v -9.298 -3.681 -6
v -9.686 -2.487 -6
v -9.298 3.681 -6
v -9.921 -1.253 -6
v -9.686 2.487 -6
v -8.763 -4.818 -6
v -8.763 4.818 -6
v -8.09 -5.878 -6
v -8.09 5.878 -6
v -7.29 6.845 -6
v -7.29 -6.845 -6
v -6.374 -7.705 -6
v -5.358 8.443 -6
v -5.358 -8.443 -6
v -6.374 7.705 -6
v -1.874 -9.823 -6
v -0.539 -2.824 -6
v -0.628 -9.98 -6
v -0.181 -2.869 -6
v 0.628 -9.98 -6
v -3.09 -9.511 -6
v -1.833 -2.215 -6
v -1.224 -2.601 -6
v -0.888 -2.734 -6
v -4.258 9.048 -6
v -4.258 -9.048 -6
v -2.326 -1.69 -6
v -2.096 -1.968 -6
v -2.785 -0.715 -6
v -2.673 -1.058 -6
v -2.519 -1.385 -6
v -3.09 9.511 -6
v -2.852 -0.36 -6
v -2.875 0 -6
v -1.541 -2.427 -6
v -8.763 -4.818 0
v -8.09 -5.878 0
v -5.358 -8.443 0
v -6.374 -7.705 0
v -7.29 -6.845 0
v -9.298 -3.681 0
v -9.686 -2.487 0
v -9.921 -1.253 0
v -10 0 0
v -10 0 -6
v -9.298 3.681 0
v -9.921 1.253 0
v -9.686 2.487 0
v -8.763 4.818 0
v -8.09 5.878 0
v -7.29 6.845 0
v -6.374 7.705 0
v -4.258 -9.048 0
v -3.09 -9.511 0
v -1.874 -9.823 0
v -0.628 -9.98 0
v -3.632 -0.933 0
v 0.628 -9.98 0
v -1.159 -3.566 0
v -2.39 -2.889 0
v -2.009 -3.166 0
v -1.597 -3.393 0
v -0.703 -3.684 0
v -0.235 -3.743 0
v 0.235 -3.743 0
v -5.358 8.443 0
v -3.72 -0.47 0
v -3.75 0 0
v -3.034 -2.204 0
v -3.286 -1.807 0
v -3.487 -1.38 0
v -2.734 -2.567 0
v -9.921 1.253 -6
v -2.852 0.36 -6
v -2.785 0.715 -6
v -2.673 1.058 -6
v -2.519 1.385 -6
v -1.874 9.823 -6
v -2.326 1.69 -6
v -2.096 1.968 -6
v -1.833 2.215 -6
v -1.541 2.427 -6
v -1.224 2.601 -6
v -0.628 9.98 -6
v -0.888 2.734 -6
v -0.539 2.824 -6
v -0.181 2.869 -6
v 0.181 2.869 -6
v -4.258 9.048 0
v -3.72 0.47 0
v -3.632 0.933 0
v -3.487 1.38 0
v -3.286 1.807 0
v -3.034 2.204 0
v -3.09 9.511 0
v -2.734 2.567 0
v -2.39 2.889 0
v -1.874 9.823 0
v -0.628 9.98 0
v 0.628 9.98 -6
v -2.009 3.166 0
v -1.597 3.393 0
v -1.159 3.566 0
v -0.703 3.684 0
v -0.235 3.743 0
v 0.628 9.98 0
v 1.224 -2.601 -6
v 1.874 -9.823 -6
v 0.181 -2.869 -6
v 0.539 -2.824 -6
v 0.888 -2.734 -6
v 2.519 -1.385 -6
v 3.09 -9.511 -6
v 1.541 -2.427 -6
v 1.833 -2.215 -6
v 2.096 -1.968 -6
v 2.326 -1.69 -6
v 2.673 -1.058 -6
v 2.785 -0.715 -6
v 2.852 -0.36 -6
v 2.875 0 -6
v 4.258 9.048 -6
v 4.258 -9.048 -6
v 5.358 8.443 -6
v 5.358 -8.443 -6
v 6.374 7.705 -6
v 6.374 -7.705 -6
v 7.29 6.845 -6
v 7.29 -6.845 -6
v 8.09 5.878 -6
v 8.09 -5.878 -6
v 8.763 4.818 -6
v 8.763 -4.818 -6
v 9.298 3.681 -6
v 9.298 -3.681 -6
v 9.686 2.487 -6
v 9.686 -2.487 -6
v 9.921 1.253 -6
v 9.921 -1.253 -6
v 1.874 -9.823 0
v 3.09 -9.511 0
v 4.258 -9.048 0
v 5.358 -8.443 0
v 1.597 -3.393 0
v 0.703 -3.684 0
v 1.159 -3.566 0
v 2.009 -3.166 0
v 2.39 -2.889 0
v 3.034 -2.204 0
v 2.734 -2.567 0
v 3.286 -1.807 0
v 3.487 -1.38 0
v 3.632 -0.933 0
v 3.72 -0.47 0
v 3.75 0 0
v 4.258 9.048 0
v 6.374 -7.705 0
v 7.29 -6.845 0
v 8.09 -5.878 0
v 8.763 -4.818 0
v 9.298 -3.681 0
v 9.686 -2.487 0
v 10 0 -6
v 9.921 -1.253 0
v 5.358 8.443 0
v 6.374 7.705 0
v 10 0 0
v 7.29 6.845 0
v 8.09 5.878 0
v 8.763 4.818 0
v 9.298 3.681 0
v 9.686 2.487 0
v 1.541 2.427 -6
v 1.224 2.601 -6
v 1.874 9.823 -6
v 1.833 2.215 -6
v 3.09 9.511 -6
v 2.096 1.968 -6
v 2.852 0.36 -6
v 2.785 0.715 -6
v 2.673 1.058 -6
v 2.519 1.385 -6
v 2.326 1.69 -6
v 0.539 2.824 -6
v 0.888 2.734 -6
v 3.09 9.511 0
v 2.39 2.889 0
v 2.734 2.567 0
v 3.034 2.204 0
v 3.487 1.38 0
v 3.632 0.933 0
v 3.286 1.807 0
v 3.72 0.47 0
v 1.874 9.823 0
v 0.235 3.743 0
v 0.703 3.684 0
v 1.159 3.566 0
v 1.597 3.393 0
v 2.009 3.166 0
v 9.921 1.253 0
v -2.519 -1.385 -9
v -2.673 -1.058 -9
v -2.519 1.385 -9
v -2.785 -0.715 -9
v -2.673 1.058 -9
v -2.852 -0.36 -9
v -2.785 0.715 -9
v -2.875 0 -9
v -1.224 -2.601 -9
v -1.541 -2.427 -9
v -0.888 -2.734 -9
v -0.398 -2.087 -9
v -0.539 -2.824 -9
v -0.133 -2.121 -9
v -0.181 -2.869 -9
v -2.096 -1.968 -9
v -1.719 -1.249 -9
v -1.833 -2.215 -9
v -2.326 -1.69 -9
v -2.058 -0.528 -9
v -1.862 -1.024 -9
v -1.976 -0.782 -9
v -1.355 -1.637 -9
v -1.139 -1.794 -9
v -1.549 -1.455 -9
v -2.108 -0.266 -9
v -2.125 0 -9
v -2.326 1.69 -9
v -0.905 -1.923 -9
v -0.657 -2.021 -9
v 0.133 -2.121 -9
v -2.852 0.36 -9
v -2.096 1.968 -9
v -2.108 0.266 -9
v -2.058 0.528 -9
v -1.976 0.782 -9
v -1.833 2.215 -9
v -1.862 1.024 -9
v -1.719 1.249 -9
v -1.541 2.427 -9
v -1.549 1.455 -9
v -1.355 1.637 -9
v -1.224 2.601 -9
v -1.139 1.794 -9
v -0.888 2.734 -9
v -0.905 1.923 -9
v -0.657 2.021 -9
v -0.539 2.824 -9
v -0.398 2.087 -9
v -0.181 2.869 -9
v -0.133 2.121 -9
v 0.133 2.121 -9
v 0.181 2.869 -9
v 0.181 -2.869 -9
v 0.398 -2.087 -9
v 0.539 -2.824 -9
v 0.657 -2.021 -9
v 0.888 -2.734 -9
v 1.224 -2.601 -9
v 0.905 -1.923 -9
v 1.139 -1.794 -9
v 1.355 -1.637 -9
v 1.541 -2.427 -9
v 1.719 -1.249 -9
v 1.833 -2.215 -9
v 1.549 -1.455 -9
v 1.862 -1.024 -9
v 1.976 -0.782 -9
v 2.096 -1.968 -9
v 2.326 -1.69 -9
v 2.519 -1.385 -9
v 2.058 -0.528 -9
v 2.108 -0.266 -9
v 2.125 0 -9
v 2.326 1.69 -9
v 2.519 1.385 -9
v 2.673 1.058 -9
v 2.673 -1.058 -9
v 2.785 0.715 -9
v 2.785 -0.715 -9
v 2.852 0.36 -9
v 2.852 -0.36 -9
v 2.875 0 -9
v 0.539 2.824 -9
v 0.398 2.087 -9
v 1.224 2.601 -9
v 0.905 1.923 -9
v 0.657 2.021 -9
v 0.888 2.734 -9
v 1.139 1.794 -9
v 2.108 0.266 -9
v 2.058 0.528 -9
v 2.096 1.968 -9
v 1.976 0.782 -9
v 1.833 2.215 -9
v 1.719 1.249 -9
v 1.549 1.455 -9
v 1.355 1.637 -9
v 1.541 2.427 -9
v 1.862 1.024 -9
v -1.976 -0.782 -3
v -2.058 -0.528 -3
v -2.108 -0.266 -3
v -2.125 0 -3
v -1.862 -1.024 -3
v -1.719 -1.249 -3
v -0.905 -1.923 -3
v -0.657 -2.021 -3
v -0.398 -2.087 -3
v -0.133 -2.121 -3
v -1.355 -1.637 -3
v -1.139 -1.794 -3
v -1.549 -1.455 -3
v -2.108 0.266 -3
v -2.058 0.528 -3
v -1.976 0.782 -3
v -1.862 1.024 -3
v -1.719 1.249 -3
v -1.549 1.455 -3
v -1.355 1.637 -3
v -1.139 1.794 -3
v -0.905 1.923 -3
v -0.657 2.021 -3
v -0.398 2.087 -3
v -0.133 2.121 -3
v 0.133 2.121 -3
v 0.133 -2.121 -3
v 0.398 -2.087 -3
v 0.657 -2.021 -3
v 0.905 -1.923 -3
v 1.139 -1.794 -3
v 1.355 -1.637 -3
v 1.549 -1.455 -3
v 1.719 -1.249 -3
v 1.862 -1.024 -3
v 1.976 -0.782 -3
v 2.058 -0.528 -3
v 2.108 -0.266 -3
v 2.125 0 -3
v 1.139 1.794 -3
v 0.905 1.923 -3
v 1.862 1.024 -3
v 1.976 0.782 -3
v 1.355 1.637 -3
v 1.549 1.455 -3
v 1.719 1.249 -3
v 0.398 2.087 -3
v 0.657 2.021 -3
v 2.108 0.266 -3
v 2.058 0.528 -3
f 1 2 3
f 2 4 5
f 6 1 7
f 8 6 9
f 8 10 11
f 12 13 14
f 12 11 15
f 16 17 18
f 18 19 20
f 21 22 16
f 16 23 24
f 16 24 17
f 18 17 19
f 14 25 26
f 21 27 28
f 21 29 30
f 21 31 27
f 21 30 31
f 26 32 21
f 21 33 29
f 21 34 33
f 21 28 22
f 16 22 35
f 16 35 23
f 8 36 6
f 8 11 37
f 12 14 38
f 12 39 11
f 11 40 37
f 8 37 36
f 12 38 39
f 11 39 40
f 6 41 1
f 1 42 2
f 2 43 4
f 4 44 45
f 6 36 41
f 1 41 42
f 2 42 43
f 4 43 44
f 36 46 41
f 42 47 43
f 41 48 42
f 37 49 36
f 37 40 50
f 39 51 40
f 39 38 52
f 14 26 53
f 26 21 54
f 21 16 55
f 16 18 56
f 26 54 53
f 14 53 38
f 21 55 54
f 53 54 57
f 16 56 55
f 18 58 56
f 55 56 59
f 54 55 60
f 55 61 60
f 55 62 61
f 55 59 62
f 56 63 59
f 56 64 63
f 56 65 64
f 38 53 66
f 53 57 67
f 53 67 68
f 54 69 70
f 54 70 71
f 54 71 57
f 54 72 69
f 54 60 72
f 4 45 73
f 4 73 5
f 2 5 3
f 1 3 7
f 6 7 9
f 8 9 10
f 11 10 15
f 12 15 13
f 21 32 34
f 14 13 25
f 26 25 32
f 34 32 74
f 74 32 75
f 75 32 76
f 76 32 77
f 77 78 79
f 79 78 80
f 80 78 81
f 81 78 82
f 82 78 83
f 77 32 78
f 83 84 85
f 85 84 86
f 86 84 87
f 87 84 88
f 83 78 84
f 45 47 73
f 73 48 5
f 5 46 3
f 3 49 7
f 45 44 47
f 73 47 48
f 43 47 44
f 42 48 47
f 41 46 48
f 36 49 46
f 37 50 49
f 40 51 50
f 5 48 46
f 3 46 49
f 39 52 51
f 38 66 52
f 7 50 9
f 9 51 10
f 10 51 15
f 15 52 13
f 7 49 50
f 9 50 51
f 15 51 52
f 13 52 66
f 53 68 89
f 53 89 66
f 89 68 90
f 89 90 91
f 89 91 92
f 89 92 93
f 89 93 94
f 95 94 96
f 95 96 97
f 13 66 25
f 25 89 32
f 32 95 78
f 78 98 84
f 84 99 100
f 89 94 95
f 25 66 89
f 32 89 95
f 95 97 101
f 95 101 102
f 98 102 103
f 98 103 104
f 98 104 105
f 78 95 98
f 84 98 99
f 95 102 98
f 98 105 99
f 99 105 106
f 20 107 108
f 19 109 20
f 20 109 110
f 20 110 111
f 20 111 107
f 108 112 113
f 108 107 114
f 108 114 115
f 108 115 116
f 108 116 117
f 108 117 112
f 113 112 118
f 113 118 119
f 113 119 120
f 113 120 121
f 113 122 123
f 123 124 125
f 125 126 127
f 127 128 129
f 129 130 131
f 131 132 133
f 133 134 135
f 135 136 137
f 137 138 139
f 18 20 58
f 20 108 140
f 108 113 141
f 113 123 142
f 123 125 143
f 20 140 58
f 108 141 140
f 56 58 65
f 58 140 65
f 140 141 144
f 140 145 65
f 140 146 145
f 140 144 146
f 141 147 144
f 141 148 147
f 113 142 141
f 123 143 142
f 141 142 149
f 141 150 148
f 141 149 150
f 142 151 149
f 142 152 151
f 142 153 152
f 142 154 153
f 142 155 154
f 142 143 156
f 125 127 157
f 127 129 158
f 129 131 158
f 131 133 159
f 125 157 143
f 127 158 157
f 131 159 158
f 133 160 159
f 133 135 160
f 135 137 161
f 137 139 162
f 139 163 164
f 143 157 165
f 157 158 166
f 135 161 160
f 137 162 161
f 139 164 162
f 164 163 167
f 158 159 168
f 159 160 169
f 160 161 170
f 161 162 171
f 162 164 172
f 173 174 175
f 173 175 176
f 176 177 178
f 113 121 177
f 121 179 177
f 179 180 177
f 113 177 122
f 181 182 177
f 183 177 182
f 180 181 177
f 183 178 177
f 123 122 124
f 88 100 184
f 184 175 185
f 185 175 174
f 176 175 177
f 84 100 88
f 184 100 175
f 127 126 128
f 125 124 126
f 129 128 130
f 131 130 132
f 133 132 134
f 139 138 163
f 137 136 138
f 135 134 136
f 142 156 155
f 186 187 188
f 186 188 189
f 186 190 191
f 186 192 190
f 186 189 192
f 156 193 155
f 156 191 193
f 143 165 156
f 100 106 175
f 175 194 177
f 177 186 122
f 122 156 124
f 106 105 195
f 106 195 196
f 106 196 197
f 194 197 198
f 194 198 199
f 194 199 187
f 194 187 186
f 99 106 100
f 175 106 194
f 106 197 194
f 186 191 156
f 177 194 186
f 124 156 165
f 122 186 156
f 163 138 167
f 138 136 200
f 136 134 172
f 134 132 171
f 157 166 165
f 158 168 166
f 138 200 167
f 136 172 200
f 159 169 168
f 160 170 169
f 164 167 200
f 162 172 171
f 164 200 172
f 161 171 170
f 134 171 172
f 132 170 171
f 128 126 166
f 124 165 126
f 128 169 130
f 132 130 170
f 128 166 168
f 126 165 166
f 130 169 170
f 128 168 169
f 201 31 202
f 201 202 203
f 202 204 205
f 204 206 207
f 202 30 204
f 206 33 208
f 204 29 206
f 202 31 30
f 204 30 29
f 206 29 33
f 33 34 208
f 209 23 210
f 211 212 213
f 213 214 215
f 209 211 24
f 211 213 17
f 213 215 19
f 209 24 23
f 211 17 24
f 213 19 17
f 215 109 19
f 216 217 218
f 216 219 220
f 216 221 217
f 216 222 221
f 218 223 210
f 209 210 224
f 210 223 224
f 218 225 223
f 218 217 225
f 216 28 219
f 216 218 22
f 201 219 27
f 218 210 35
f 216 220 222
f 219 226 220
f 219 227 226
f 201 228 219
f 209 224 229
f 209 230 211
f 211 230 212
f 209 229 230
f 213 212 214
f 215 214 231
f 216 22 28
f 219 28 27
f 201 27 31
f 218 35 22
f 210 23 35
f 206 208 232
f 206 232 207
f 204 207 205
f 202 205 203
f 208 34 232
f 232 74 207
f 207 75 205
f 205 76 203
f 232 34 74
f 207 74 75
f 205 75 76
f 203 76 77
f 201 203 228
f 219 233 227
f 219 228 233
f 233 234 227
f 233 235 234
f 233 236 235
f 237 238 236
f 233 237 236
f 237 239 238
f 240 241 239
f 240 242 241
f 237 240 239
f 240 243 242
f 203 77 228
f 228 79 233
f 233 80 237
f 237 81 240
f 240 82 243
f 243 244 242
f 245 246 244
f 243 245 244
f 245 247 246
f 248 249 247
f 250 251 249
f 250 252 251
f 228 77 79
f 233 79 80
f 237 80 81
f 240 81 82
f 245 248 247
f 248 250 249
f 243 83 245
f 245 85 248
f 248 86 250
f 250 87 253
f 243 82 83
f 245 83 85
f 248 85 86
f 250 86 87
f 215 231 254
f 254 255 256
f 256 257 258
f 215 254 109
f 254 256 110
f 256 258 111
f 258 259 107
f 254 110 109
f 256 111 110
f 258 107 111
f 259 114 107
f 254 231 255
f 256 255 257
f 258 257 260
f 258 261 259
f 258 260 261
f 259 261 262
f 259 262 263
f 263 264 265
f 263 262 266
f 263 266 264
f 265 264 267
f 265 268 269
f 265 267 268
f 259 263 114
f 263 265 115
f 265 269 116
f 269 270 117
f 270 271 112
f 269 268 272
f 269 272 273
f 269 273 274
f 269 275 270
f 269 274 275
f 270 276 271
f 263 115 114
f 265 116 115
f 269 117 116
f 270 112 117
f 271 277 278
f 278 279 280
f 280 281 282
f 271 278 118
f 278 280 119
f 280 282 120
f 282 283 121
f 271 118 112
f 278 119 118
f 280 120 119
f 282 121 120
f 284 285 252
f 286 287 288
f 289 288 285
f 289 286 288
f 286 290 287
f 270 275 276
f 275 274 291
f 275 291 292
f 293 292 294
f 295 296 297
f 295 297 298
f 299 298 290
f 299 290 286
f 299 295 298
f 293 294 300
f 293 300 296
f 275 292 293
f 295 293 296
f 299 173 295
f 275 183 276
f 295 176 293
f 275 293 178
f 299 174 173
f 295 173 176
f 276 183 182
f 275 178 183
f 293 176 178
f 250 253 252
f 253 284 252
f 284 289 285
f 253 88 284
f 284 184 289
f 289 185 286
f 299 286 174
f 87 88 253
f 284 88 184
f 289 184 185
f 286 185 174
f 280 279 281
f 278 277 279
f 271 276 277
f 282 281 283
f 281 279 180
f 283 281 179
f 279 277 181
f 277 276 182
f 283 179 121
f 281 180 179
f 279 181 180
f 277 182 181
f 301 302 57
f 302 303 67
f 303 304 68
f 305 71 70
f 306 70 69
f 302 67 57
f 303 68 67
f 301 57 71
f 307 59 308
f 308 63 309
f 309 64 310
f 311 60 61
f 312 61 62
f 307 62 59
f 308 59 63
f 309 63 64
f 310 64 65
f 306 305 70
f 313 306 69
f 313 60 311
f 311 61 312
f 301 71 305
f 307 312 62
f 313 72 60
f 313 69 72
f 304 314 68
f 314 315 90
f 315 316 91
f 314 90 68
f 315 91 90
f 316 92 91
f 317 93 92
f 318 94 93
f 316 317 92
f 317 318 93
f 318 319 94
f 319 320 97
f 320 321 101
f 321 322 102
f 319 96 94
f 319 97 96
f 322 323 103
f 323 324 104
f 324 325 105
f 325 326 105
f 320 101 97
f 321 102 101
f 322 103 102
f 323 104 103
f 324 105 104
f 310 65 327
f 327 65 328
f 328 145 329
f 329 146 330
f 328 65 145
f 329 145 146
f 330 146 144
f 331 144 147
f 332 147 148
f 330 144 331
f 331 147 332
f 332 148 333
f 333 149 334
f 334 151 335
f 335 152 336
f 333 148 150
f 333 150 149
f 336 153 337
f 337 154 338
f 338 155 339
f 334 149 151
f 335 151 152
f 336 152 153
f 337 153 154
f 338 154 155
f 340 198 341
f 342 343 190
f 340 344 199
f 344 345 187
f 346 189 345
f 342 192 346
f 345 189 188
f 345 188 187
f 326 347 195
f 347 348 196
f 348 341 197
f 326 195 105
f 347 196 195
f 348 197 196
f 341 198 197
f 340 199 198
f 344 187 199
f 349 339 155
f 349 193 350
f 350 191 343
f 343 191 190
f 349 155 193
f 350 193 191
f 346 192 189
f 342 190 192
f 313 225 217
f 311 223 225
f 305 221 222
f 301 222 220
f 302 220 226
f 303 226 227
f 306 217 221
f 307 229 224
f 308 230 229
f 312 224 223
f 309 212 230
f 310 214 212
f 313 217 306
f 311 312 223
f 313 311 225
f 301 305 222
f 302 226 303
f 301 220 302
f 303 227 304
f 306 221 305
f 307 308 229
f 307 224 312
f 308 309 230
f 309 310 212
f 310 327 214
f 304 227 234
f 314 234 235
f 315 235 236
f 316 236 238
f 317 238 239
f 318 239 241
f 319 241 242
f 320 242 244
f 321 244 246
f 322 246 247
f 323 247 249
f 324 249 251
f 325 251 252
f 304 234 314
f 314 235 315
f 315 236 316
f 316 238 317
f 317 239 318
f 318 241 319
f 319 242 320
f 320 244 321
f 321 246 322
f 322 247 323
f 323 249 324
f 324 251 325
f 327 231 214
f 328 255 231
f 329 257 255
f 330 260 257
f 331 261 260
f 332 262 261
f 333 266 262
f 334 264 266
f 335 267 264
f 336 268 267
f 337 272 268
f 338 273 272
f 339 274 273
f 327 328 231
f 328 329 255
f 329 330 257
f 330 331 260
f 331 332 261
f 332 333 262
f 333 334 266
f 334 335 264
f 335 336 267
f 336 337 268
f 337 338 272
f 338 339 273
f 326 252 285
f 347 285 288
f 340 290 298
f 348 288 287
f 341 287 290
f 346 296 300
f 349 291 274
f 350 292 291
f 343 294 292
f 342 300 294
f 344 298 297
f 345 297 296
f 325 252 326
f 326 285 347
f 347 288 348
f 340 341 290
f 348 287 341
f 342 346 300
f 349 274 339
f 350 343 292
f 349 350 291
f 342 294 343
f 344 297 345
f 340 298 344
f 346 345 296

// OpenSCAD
$fn = 50;

difference() {
	union() {
		translate(v = [0, 0, -6.0]) {
			cylinder(h = 6, r = 10.0);
		}
		#translate(v = [0, 0, -9.0]) {
			cylinder(h = 9, r = 2.875);
		}
	}
	union() {
		translate(v = [0, 0, 0]) {
			rotate(a = [0, 0, 0]) {
				difference() {
					union() {
						translate(v = [0, 0, -9.0]) {
							cylinder(h = 9, r = 2.0);
						}
						translate(v = [0, 0, -3]) {
							cylinder(h = 3, r1 = 2.125, r2 = 3.75);
						}
						translate(v = [0, 0, -9.0]) {
							cylinder(h = 9, r = 2.125);
						}
						translate(v = [0, 0, -9.0]) {
							cylinder(h = 9, r = 2.0);
						}
					}
					union();
				}
			}
		}
	}
}
